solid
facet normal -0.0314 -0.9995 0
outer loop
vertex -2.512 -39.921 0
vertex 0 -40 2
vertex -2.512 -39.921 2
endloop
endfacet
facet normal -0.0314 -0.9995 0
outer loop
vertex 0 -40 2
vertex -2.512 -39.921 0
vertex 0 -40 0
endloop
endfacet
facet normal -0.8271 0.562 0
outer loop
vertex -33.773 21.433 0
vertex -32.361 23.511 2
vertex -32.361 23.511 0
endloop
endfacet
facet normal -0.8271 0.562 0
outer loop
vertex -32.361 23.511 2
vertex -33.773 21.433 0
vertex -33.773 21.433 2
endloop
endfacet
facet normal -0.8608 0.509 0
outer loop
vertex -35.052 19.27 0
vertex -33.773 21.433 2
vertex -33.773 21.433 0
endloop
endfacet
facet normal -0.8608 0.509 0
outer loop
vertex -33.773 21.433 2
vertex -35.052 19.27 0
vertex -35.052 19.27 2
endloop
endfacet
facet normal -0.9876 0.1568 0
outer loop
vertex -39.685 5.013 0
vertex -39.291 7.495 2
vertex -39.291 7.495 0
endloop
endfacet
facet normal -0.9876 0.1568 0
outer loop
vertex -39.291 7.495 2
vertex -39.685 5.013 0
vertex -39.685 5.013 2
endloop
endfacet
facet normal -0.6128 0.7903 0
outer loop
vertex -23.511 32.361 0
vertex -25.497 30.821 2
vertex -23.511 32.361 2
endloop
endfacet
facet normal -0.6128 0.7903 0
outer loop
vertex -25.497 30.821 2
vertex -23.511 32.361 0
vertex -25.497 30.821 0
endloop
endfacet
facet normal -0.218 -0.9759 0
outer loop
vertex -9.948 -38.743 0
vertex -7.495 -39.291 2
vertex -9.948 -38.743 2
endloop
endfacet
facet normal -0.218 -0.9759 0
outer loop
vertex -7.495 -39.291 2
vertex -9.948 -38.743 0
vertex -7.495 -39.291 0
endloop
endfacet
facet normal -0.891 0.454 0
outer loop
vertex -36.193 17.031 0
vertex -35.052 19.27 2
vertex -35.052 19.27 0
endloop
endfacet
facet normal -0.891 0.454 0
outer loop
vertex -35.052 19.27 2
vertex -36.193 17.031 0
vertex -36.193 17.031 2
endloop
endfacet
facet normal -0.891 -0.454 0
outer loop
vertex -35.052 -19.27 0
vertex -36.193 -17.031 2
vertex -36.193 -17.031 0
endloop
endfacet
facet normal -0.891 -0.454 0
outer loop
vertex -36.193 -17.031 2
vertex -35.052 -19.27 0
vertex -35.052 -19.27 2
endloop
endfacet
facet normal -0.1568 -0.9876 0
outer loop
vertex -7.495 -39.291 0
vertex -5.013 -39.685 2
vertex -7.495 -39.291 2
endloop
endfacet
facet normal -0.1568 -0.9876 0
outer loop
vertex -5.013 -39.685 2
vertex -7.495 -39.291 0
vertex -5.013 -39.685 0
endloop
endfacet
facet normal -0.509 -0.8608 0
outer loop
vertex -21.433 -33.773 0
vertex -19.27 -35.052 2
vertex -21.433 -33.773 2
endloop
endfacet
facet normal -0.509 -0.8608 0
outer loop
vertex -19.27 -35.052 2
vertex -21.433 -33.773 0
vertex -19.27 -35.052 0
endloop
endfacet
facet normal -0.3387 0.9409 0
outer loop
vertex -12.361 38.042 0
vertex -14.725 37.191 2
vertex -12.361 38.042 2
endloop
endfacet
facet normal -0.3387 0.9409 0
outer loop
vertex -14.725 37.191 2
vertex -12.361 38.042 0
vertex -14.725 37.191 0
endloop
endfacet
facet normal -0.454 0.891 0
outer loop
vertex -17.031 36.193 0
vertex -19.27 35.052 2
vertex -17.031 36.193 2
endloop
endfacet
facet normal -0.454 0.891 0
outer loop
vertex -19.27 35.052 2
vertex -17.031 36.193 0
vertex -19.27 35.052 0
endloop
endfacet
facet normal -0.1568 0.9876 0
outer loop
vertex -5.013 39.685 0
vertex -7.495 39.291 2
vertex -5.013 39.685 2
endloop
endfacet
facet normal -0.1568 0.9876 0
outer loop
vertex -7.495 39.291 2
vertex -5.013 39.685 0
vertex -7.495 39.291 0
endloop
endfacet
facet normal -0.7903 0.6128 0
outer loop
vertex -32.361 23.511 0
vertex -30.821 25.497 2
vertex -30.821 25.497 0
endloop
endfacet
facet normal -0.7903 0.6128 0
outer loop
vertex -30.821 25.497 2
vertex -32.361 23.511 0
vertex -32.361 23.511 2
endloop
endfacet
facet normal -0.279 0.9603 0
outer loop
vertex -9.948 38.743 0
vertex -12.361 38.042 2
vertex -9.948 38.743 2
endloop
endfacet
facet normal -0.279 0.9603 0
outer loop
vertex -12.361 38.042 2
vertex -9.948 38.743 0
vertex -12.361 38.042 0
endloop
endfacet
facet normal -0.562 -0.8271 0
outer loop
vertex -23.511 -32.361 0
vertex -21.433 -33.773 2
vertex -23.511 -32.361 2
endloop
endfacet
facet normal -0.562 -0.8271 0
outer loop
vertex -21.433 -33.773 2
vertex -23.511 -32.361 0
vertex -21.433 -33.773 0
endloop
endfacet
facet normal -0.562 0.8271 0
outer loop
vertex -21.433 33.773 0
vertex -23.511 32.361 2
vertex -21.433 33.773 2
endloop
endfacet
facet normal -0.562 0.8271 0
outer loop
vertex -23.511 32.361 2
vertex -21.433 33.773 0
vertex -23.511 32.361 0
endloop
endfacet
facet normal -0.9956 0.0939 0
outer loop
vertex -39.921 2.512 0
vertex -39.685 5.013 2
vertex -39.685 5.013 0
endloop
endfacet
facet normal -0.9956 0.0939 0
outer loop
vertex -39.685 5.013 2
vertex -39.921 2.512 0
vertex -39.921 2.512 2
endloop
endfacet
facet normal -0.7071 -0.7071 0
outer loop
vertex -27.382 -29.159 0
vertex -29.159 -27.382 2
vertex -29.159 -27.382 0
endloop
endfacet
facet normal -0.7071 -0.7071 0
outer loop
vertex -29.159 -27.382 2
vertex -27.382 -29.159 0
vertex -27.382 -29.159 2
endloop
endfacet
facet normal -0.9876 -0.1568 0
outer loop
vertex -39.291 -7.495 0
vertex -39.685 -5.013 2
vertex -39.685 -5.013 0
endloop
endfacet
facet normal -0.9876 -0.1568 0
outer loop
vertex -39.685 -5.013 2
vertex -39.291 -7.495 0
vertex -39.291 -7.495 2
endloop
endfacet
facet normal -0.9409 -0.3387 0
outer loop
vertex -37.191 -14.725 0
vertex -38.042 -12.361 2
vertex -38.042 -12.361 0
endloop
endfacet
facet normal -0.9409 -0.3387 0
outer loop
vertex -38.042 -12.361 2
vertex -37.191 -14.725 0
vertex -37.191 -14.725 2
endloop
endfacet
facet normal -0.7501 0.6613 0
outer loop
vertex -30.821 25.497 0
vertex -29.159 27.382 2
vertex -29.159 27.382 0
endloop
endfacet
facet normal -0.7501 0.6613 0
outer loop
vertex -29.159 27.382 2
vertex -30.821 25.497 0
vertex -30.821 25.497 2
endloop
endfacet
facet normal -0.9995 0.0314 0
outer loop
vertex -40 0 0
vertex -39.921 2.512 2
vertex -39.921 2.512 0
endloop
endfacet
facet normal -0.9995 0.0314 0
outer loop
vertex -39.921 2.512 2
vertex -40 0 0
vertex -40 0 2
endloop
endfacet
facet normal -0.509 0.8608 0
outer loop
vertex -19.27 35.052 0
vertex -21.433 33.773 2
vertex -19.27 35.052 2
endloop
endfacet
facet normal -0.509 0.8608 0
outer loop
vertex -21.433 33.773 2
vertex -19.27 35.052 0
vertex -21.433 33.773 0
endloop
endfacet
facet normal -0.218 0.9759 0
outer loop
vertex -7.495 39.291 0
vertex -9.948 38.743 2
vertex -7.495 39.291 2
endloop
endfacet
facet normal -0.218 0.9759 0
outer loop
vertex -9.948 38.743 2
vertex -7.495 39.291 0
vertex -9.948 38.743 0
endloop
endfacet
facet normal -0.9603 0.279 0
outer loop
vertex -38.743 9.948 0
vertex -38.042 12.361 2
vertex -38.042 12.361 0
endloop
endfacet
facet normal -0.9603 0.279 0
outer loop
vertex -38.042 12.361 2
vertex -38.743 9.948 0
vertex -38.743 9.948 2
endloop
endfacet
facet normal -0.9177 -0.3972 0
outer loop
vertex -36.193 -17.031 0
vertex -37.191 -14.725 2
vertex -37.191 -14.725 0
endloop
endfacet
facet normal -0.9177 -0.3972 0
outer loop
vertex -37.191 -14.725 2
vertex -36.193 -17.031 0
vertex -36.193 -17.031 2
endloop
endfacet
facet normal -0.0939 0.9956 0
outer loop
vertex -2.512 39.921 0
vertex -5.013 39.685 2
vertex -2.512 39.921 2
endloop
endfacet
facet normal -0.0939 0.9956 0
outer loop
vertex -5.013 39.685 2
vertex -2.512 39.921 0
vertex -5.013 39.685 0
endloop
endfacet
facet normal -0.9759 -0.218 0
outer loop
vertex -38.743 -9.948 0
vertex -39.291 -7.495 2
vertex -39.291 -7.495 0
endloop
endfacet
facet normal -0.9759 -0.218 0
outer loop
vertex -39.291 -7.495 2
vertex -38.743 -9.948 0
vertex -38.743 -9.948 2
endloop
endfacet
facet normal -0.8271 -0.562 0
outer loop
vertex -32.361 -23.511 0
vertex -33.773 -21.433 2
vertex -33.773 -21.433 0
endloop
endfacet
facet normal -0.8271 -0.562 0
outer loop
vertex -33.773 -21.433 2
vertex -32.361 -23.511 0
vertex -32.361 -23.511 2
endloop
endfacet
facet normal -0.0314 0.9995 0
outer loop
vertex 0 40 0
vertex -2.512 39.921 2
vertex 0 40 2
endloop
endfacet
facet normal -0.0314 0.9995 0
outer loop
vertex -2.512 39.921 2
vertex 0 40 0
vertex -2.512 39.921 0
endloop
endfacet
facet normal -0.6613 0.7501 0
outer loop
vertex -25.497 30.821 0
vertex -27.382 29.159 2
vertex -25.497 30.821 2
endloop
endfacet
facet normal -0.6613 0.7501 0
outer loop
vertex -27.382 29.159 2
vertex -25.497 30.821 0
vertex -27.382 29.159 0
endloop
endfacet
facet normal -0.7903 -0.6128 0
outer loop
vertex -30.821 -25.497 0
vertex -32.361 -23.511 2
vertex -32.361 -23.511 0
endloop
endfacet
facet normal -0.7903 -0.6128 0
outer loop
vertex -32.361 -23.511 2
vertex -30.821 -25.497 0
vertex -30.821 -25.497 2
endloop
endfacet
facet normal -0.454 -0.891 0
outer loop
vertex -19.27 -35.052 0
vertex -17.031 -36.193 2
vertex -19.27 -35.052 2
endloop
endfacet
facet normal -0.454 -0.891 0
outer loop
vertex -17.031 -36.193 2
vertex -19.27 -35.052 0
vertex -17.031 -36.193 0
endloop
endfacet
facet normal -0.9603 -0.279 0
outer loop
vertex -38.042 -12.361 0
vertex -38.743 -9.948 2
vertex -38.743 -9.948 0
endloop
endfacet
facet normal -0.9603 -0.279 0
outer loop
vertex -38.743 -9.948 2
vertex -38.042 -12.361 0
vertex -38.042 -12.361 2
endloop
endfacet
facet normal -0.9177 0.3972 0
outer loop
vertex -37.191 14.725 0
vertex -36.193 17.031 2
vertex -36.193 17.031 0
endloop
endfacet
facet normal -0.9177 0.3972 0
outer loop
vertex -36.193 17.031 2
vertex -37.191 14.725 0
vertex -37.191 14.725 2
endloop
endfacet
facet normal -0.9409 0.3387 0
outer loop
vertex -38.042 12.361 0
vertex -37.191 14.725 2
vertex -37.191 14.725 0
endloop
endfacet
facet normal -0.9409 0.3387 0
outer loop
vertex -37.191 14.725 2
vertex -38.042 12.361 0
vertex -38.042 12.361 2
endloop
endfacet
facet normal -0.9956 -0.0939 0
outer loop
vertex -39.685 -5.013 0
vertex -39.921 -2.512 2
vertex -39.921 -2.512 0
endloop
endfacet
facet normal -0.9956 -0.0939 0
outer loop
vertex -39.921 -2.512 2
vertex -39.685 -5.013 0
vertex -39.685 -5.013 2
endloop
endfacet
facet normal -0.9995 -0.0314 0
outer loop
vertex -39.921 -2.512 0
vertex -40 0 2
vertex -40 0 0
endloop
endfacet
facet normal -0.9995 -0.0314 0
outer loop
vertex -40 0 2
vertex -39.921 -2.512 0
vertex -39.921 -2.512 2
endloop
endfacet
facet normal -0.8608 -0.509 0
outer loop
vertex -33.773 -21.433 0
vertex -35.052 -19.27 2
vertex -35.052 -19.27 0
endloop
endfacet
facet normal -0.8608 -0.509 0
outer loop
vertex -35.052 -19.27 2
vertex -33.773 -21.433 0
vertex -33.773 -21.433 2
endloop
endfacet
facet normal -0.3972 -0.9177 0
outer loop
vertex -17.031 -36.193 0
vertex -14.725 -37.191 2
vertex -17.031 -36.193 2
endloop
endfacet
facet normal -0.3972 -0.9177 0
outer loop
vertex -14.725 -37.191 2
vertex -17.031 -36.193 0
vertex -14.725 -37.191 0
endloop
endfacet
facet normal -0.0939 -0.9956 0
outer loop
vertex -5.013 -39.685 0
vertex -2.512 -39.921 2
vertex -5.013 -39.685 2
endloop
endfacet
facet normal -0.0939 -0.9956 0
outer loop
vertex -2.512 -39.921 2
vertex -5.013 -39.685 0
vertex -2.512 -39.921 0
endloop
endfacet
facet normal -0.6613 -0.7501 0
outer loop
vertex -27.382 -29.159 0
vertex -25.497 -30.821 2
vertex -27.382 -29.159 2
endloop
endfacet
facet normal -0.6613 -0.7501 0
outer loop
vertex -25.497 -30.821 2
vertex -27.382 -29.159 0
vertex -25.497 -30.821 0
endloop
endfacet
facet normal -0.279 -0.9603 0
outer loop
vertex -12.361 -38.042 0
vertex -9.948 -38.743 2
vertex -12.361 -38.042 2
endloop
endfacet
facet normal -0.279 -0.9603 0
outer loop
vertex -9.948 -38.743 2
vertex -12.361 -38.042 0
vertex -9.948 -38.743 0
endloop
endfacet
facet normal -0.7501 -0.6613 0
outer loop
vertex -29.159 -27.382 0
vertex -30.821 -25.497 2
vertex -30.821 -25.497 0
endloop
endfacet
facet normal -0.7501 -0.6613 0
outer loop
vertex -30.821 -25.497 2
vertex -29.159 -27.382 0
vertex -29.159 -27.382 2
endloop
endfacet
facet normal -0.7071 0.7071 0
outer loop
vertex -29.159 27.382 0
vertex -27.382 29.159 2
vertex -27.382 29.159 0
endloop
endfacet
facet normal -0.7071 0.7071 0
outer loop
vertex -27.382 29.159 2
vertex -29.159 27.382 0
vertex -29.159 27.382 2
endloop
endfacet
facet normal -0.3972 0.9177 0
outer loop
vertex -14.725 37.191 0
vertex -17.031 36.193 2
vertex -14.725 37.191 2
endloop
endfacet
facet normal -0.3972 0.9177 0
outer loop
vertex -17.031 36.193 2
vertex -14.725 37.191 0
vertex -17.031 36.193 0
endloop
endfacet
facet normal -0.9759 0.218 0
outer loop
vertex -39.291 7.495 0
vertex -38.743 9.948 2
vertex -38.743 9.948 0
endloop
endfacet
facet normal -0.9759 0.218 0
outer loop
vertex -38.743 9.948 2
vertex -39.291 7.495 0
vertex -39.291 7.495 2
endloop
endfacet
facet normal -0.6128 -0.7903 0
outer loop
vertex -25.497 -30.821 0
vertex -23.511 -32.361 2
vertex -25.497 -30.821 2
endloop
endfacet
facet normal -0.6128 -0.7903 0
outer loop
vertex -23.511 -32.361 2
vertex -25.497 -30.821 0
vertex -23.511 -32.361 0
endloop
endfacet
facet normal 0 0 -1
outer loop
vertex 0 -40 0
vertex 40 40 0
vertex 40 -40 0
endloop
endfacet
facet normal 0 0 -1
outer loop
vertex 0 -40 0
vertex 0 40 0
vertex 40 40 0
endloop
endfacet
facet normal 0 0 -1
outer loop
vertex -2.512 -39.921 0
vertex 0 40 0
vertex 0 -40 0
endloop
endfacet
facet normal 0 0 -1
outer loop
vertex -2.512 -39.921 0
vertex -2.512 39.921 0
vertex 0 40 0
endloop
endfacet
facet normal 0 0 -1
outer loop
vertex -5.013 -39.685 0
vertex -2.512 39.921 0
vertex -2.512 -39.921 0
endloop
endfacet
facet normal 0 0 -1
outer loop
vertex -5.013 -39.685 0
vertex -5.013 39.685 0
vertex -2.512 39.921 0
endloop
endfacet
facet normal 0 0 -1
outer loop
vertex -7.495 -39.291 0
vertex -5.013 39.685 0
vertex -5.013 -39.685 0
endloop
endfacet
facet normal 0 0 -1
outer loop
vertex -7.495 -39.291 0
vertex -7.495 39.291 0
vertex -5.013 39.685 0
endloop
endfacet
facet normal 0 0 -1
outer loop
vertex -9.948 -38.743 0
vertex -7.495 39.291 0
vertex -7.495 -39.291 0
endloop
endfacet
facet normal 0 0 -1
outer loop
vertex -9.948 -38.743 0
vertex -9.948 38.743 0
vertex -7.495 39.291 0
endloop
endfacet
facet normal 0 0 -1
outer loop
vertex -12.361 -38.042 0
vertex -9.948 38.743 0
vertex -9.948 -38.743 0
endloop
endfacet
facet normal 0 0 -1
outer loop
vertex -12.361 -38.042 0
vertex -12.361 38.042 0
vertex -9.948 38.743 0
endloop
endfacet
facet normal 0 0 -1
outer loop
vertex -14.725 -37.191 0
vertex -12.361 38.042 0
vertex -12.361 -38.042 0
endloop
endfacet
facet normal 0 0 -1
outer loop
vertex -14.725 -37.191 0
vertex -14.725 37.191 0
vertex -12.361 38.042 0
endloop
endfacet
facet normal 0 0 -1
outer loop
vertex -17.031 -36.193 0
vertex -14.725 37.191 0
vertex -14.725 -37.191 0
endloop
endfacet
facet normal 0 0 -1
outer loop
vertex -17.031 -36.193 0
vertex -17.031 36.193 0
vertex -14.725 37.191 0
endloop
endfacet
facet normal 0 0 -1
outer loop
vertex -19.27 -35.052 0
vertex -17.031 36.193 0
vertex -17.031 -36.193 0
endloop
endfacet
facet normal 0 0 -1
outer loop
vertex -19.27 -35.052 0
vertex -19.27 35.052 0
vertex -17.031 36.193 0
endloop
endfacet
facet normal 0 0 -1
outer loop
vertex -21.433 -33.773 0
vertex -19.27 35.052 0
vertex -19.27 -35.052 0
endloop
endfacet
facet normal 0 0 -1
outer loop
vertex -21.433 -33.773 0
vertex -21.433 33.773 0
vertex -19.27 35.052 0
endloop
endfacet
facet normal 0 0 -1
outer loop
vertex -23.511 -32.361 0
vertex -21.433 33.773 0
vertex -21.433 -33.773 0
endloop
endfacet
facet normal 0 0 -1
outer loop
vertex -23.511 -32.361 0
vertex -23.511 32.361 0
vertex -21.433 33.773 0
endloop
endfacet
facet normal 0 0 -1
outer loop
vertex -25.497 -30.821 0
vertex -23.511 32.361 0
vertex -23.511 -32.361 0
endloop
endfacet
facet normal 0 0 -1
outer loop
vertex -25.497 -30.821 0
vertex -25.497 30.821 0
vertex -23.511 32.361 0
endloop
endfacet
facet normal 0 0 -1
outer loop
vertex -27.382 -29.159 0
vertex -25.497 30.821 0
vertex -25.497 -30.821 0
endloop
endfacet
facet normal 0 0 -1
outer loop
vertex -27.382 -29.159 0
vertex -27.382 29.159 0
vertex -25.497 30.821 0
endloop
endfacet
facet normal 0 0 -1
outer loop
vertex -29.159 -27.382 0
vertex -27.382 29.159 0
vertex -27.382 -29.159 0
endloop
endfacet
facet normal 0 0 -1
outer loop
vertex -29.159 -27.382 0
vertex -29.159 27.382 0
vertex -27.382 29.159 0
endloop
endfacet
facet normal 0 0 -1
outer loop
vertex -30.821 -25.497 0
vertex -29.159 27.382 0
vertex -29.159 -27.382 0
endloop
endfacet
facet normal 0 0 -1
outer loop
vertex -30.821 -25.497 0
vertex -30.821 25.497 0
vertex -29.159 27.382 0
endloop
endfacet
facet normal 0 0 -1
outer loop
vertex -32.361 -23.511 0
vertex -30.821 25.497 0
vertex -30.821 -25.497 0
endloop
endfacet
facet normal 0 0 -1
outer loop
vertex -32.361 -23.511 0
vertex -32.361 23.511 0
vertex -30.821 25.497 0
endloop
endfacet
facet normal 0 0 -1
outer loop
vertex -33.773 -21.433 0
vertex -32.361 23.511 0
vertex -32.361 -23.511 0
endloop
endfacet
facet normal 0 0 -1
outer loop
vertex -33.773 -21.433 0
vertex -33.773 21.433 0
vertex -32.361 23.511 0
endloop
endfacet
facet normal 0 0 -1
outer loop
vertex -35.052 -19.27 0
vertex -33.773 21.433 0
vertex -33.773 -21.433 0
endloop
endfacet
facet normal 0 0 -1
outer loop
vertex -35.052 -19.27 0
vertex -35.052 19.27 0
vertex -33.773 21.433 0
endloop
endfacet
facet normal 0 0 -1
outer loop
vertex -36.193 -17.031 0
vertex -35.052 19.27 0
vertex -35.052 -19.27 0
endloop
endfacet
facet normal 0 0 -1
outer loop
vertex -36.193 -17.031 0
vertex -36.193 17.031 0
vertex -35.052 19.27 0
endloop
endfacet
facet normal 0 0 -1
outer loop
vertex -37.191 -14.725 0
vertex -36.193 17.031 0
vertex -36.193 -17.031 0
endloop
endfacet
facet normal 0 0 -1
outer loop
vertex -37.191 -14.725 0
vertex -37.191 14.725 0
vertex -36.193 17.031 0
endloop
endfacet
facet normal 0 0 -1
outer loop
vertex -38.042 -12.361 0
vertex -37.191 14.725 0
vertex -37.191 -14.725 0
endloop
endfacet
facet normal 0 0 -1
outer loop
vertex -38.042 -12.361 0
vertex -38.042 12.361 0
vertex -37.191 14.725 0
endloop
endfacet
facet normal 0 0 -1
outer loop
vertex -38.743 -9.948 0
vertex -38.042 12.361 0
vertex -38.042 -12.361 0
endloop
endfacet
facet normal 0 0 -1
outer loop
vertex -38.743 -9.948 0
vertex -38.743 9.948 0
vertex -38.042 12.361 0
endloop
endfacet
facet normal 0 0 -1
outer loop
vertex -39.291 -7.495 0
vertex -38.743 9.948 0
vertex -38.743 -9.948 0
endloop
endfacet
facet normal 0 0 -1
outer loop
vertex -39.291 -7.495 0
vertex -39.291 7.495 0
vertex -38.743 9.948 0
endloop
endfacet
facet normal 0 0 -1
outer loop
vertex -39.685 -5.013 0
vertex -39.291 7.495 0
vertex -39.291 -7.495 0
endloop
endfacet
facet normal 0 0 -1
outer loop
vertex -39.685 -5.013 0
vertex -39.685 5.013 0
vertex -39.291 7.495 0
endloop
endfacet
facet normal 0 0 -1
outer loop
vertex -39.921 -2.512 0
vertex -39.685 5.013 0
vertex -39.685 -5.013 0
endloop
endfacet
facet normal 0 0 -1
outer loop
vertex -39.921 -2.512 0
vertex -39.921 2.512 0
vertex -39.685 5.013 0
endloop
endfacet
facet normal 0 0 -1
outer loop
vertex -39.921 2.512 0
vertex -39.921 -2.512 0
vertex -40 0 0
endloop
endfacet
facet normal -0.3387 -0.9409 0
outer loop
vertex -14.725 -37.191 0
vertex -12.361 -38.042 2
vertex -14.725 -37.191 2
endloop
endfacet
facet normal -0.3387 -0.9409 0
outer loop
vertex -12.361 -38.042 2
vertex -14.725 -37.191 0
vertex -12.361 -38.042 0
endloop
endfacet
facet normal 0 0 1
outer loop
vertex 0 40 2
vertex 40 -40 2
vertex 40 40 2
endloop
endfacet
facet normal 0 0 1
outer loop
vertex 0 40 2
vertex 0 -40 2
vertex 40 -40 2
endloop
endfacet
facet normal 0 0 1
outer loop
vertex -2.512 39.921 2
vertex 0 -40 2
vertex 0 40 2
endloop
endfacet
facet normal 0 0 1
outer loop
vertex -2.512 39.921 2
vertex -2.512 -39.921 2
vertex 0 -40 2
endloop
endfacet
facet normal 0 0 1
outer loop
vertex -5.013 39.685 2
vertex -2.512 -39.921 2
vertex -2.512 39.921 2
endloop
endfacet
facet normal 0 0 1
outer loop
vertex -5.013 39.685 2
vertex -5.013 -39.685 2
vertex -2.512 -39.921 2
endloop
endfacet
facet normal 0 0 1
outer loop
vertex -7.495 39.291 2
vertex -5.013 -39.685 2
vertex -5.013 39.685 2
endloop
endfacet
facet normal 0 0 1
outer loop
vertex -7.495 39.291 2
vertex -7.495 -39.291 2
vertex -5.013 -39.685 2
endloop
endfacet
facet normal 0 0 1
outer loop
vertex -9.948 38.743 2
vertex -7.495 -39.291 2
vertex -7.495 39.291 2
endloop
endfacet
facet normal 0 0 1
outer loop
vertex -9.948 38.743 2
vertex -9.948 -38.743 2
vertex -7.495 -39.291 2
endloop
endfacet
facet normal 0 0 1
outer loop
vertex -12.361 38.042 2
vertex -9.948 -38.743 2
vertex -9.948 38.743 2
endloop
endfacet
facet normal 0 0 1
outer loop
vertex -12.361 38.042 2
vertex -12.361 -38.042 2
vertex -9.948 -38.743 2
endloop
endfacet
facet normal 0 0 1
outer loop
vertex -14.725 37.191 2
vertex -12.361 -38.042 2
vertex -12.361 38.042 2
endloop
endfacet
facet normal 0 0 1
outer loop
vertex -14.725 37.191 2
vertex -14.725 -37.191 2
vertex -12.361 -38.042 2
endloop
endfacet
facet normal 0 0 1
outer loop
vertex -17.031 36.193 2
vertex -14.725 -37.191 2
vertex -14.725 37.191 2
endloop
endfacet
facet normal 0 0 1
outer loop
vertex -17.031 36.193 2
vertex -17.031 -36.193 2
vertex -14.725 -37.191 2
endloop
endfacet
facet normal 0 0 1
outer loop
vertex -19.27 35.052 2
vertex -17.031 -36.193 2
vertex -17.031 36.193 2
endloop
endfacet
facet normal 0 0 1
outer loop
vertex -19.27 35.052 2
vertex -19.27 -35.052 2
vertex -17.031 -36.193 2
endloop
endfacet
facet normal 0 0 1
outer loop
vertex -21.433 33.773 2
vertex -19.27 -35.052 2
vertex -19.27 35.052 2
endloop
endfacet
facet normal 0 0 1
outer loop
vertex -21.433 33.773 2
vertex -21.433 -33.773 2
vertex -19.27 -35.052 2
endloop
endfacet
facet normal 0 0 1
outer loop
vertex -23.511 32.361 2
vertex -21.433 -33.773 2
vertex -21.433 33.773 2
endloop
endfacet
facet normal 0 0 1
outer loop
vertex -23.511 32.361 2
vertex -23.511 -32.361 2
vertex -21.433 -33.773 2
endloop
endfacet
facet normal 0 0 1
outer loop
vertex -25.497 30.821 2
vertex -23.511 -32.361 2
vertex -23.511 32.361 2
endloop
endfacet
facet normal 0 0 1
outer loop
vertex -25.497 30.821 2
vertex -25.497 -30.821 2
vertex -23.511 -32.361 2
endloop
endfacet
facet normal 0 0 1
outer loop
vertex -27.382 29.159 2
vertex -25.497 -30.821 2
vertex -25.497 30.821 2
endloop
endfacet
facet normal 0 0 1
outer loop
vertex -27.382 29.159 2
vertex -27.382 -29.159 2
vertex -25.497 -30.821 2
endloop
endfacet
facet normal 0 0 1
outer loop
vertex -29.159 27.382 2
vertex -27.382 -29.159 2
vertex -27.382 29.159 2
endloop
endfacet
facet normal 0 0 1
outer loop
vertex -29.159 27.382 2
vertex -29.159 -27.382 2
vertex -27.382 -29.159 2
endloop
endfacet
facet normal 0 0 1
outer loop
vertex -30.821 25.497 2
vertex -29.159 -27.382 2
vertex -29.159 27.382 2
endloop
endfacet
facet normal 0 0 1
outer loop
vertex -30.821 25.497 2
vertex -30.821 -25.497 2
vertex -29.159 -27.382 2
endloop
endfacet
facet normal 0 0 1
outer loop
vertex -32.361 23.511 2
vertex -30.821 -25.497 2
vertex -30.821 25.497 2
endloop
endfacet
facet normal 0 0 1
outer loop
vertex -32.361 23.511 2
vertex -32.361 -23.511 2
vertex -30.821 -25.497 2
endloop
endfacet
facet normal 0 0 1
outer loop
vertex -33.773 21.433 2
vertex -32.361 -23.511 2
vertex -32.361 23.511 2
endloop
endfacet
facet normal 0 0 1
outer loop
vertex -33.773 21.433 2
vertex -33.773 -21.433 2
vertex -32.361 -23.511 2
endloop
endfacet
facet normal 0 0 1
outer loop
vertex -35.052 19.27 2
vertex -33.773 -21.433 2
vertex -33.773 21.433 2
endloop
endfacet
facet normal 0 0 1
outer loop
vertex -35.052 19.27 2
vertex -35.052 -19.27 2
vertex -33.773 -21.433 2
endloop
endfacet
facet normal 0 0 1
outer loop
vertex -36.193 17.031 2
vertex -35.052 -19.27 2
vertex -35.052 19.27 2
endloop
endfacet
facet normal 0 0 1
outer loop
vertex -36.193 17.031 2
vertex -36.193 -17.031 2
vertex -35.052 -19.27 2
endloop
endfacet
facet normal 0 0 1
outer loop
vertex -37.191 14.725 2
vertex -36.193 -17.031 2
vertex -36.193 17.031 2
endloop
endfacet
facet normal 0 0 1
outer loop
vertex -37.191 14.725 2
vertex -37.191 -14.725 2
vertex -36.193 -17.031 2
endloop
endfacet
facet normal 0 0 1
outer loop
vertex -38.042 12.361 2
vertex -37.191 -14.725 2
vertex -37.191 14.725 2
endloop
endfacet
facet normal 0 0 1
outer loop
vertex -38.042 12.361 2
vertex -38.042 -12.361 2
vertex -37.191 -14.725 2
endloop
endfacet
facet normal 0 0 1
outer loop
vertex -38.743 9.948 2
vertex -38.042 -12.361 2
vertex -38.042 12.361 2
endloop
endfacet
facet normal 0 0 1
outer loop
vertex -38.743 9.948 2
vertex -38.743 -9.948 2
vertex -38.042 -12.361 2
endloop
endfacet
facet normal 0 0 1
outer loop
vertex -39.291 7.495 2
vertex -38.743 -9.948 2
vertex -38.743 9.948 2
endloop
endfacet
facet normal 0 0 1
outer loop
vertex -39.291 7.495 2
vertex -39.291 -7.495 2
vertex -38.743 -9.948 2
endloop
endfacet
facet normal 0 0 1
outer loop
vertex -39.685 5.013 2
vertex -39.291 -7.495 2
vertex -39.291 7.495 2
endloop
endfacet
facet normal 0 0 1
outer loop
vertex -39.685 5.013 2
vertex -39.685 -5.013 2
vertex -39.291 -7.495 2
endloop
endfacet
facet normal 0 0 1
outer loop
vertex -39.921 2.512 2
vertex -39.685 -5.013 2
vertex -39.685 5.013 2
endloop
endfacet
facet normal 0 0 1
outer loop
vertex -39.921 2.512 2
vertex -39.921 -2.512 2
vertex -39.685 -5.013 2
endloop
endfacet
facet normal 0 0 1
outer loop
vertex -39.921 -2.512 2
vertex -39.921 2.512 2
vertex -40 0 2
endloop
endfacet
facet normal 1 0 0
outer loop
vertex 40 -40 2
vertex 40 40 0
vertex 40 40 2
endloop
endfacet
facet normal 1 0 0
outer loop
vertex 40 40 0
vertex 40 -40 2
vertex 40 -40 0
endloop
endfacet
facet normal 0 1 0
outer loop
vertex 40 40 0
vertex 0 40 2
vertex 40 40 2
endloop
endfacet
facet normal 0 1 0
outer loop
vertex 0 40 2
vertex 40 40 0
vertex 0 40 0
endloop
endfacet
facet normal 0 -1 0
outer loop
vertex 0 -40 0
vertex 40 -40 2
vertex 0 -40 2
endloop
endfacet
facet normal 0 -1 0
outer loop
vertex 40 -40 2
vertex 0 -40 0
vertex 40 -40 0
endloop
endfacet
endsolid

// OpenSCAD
difference() {
union() {

  cylinder(h=2, r=80/2, $fn=100, center=false);
  translate([0, -40, 0])
        cube([40, 80, 2]);

}
}
